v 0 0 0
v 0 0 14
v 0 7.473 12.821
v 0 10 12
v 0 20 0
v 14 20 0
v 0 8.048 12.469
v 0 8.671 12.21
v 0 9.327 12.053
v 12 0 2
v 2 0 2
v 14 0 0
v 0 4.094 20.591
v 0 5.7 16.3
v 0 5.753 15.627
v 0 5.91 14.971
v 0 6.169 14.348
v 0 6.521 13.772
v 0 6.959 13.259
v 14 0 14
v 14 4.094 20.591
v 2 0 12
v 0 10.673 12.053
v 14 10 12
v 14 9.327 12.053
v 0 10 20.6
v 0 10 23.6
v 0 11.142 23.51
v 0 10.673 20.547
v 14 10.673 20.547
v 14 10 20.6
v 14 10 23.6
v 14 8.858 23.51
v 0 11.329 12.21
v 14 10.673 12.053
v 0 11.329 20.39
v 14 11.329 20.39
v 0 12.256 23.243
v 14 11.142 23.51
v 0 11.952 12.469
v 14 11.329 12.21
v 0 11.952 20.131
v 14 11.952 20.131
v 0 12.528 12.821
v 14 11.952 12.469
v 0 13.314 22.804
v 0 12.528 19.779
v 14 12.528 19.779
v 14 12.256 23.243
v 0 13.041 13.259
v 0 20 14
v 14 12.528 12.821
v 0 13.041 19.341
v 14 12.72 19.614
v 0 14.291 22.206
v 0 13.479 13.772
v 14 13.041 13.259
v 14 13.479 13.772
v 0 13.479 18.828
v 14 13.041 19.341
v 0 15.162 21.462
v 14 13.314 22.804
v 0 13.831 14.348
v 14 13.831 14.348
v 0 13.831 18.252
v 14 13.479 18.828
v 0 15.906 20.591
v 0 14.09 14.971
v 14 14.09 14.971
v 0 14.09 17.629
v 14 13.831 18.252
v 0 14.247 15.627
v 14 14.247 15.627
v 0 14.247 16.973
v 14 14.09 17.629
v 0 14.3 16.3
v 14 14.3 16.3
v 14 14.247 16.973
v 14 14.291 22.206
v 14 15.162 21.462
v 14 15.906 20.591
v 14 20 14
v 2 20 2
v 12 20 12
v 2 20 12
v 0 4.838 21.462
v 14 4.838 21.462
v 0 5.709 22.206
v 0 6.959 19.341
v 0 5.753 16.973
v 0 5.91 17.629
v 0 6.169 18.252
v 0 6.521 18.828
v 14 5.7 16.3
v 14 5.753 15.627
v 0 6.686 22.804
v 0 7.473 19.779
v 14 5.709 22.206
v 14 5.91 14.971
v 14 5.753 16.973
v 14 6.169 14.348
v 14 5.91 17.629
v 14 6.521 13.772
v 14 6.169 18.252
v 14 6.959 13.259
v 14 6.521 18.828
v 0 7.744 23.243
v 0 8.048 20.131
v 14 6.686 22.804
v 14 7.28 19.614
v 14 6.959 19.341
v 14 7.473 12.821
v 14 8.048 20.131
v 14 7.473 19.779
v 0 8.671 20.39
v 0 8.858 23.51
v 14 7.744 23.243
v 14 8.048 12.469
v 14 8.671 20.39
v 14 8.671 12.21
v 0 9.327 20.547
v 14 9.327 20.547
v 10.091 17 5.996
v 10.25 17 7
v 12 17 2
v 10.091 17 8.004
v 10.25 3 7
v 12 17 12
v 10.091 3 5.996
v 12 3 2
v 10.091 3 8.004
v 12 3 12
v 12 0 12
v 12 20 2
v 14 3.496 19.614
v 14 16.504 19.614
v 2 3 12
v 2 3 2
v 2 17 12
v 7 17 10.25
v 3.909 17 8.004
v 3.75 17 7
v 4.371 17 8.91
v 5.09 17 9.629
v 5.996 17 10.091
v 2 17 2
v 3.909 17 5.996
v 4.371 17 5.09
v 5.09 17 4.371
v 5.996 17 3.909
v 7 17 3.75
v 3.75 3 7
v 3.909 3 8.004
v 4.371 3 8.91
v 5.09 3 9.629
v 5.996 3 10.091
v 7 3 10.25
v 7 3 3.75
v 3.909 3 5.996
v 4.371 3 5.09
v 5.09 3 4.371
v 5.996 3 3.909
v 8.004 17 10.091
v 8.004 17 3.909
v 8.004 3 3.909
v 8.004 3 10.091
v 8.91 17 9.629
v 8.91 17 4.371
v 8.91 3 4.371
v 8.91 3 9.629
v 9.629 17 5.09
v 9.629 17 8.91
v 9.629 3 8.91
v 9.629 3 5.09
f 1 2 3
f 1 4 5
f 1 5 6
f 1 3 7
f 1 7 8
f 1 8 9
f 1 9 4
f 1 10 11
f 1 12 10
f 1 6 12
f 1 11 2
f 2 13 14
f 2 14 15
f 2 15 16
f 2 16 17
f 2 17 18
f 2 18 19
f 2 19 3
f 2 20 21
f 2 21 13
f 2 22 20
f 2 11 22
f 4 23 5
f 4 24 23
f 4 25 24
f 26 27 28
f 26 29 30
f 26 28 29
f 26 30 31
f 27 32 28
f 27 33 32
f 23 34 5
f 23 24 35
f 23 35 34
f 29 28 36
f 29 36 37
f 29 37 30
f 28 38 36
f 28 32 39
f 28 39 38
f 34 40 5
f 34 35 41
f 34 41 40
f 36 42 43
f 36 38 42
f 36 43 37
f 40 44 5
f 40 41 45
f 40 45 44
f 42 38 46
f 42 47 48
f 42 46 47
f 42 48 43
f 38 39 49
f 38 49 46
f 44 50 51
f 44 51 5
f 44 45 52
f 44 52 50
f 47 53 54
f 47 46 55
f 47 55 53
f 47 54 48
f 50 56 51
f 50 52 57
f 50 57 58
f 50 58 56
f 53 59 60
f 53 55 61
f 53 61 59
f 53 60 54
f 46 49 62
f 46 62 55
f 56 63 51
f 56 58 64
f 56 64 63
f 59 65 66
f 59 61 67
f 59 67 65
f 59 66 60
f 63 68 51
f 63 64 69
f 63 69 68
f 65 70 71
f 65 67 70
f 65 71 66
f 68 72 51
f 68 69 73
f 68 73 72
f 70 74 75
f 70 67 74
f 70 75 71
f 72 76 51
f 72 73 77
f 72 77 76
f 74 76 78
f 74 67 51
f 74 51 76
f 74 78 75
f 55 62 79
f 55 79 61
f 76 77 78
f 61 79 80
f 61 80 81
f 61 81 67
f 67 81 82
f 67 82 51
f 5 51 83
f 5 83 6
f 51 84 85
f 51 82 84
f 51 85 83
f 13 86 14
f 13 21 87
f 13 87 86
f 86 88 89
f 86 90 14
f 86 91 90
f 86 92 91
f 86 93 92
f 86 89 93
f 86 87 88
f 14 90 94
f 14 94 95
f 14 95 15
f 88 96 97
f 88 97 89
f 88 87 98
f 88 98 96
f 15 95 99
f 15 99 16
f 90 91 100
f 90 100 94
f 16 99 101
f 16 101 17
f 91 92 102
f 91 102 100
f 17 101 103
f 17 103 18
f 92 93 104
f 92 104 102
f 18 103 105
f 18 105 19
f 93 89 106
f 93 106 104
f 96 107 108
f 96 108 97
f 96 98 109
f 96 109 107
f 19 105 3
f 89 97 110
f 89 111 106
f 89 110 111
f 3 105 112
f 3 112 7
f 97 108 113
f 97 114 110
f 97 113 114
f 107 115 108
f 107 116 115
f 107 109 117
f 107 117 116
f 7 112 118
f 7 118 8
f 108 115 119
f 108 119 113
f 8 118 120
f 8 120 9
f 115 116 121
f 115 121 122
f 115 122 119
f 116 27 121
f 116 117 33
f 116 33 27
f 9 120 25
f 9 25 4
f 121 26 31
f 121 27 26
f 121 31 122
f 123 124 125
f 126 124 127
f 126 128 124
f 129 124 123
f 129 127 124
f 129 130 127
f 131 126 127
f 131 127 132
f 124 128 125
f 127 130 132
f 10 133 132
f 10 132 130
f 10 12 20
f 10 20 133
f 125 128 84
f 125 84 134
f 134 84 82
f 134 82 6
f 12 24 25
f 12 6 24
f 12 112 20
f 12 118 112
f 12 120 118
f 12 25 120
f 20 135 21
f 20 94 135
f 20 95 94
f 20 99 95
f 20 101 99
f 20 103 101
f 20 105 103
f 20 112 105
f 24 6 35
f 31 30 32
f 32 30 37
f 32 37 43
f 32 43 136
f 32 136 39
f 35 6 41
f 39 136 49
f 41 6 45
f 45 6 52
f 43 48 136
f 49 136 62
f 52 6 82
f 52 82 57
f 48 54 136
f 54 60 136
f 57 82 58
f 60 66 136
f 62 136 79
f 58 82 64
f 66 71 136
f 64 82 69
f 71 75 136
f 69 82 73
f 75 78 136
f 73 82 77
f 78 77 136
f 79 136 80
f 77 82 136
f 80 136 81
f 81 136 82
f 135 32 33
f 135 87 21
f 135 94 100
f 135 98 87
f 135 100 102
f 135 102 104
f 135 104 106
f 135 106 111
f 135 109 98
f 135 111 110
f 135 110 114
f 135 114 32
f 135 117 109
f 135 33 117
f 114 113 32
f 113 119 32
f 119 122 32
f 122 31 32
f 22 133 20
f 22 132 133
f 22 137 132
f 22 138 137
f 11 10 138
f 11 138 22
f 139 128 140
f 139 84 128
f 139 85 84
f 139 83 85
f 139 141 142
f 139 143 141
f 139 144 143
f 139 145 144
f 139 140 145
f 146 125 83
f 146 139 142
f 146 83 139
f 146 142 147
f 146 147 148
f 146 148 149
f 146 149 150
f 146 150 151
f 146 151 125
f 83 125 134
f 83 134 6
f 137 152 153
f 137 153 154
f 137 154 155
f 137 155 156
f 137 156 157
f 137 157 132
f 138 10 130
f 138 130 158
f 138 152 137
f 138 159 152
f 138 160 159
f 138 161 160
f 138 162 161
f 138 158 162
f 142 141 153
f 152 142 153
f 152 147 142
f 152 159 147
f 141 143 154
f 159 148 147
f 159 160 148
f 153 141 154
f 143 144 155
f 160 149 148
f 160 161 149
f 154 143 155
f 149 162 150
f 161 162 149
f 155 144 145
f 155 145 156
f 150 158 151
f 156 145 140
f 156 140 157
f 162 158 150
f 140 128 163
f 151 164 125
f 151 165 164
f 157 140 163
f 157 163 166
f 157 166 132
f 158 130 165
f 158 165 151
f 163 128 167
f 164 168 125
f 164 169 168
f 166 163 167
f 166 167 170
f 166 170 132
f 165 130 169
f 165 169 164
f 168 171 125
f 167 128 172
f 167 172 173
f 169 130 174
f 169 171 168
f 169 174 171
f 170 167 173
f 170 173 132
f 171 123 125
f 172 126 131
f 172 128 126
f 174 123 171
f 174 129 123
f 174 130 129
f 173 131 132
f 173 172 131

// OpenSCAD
// file: ../parameters.scad
maximum_printable_size = 150;

layer_thickness = 0.3;
global_clearance = 0.5;


// scale parameters
tower_height = 220;
mid_base_width = 400;
mid_base_height = 160;
mid_base_length = 300;
base_mid_base_hinge_offset = 50;
counterweight_length = 200;


//Screw diameter and nut for M10 [mm]
M10_screw_diameter = 10.4;
M10_head_height = 10;
M10_head_diameter = 16+0.5;
M10_nut_height = 10.5;
M10_nut_diameter = 25.5;
M10_nut_pocket = 22.3;

//Screw diameter for M8 [mm]
M8_screw_diameter = 8.6;
M8_head_height = 8;
M8_head_diameter = 13.5;
M8_nut_height = 7.5;
M8_square_nut_thin_height = 4.5;
M8_nut_diameter = 14.4 + 0.5;
M8_nut_pocket = 13 + 0.5;
M8_washer_diameter = 16;
M8_washer_thickness = 1.5;


//Screw diameter and nut for M6 [mm]
M6_screw_diameter=6.5;
M6_head_diameter = 10+0.5;
M6_head_height = 6;
M6_nut_height = 4.9;
M6_nut_diameter = 11.8;
M6_nut_pocket = 10.4;
M6_square_nut_height = 3;
M6_square_nut_diameter = 10;
M6_washer_thickness = 1.6;

//Screw diameter and nut for M5 [mm]
M5_screw_diameter=5.5;
M5_head_height = 5;
M5_head_diameter = 13+0.5;
M5_nut_height = 4.5;
M5_nut_diameter = 9.4;
M5_nut_pocket = 8.4;

//Screw diameter and nut for M4 [mm]
M4_screw_diameter=4.5;
M4_screw_head_height = 4;
M4_nut_height = 3.2;
M4_nut_diameter = 8.4;
M4_nut_pocket = 7.5;

//Screw diameter and nut for M3 [mm]
M3_screw_diameter = 3.2;
M3_nut_height = 2.7;
M3_nut_diameter = 6.6;
M3_nut_pocket = 5.6;
M3_screw_head_height = 3;

//Screw diameter and nut for M2,5 [mm]
M2_5_screw_diameter = 2.7;
M2_5_nut_height = 2.3;
M2_5_nut_diameter = 6;
M2_5_nut_pocket = 5.5;

// kulove lozisko

bearing_efsm_08_h = 33+1;
bearing_efsm_08_m = 22;
bearing_efsm_08_db = 18;
bearing_efsm_08_ag = 10.5;
bearing_efsm_08_n = M4_screw_diameter;
bearing_efsm_08_a1 = 5.5;
bearing_efsm_08_d = 8.25;
bearing_efsm_08_B = 8; // ball height

bearing_efsm_10_h = 38+1;
bearing_efsm_10_m = 26;
bearing_efsm_10_db = 21.9;
bearing_efsm_10_ag = 12+0.2;
bearing_efsm_10_n = M5_screw_diameter;
bearing_efsm_10_a1 = 6.5;
bearing_efsm_10_d = 10.25;


bearing_efsm_12_width = 40+1;
bearing_efsm_12_h = bearing_efsm_12_width;
bearing_efsm_12_boltd = 28/2; // polovina vzdalenosti mezi srouby
bearing_efsm_12_m = bearing_efsm_12_boltd*2;
bearing_efsm_12_db = 25;
bearing_efsm_12_ag = 13;
bearing_efsm_12_a1 = 7;
bearing_efsm_12_n = M5_screw_diameter;
bearing_efsm_12_d = 12.15;
bearing_efsm_12_B = 10; // ball height
bearing_efsm_space = 1;

bearing_efsm_17_width = 54+1;
bearing_efsm_17_h = bearing_efsm_17_width;
bearing_efsm_17_boltd = 38/2; // polovina vzdalenosti mezi srouby
bearing_efsm_17_m = bearing_efsm_17_boltd*2;
bearing_efsm_17_db = 35;
bearing_efsm_17_ag = 18;
bearing_efsm_17_n = M6_screw_diameter;
bearing_efsm_17_a1 = 10;
bearing_efsm_17_B = 17; // ball height

//limcove lozisko
bearing_EFOM_10_L=26; //celkova sirka zakladny
bearing_EFOM_10_d1=10.3;//diametr otvoru real=10 mm
bearing_EFOM_10_dB=22;//diametr vystupku pro ulozeni lozika
bearing_EFOM_10_H=52;//celková delka zakladny
bearing_EFOM_10_J=36;// hole pitch
bearing_EFOM_10_A1=6.5;//vyska pouzdra
bearing_EFOM_10_Ag=12;//celkova vyska
bearing_EFOM_10_N1=5;//sirka otvoru pro sroub
bearing_EFOM_10_N2=8;//delka otvoru pro sroub
bearing_EFOM_10_m=36;//roztec der pro sroub
bearing_EFOM_10_h=9;//vyska lozika


608_bearing_outer_diameter = 22.3;
608_bearing_inner_diameter = 16;
608_bearing_thickness = 7.1;


// 20 KG servo parameters

servo_20kg_axis_offset = 9.375; // jak je osa mimo stredu
servo_20kg_body_x = 42;
servo_20kg_body_y = 21;
servo_20kg_body_z = 40;
servo_20kg_thread_x = 49/2;
servo_20kg_thread_y = 10/2;
servo_20kg_body_below = 10; // jak hluboko je tělo serva pod drzaky na srouby
servo_20kg_below = 25.8; // jak hluboko je páka serva pod drzaky na srouby

servo_20kg_bolt_d = 2.5+0.3;
servo_20kg_nut_d = 5+0.3;


//strain gauge
strain_gauge_width = 12.7;
strain_gauge_length = 75.1;
strain_gauge_screw_distance = 10;

//ALU profile
ALU_profile_width = 30.5;
ALU_profile_holder_wall_thickness = 3;
ALU_profile_groove_width = 8;

//pillow block bearing
//https://www.igus.eu/product/372
//Part no. KSTM-08
KSTM08_screws_distance = 33;         //m
KSTM08_screws_holes_diameter = 4.5;  //d2
KSTM08_flange_thickness = 6;         //h3
KSTM08_case_width = 9;               //C1
KSTM08_case_length = 47;             //a
KSTM08_ball_width = 12;              //B
KSTM08_ball_hole_diameter = 7.85;    //d1


//ložiska pro malý rotor
bearing_outer_diameter = 10.2;    // Rozměr B1 v nákresu s přídavkem na toleranci otvoru
bearing_thickness = 4;        // Rozměr B2 v nákresu
//bearing_shaft_length = 19.5;    // Rozměr B3 v nákresu, Originalni hodnota 19.5
bearing_shaft_length = 20;    // Rozměr B3 v nákresu


//parametry víčka s telemetrickou anténou
S01_sila_materialu=1.2;
S01_vyska_horni_zavit=10;
S01_hloubka_zavitu=4;
S01_prumer_vnitrni=50;
LO_spodni_prumer=17.2;
LO_vyska_bez_krytu=15;
S01_tolerance_zavit=1.5;
R01_vyska_prekryti_statoru=10;

g3_0_cone1 = 70;
g3_0_srcew_dist = 55;
// main file
include <../parameters.scad>

module 888_5006() {
    size = 20;
    wall_around_nut = 2;
    difference() {
        hull() {
            cube([M6_square_nut_diameter+wall_around_nut*2, size, M6_square_nut_diameter+wall_around_nut*2]);
            translate([0, size/2, M6_square_nut_diameter+wall_around_nut+M8_screw_diameter/2])
                rotate([0, 90, 0])
                    cylinder(d=M8_screw_diameter+6, h=M6_square_nut_diameter+wall_around_nut*2, $fn=40);
        }

        translate([M6_square_nut_diameter/2+wall_around_nut, 0, M6_square_nut_diameter/2+wall_around_nut])
            rotate([-90, 0, 0])
                cylinder(d=M6_screw_diameter, h=size, $fn=20);

        translate([-0.1, size/2, M6_square_nut_diameter+wall_around_nut+M8_screw_diameter/2])
            rotate([0, 90, 0])
                cylinder(d=M8_screw_diameter, h=M6_square_nut_diameter+0.2+wall_around_nut*2, $fn=40);

        translate([wall_around_nut, -0.1, wall_around_nut])
            cube([M6_square_nut_diameter, M6_square_nut_height+0.1, M6_square_nut_diameter]);

        translate([wall_around_nut, size-M6_square_nut_height, wall_around_nut])
            cube([M6_square_nut_diameter, M6_square_nut_height+0.1, M6_square_nut_diameter]);
    }
}

888_5006();
